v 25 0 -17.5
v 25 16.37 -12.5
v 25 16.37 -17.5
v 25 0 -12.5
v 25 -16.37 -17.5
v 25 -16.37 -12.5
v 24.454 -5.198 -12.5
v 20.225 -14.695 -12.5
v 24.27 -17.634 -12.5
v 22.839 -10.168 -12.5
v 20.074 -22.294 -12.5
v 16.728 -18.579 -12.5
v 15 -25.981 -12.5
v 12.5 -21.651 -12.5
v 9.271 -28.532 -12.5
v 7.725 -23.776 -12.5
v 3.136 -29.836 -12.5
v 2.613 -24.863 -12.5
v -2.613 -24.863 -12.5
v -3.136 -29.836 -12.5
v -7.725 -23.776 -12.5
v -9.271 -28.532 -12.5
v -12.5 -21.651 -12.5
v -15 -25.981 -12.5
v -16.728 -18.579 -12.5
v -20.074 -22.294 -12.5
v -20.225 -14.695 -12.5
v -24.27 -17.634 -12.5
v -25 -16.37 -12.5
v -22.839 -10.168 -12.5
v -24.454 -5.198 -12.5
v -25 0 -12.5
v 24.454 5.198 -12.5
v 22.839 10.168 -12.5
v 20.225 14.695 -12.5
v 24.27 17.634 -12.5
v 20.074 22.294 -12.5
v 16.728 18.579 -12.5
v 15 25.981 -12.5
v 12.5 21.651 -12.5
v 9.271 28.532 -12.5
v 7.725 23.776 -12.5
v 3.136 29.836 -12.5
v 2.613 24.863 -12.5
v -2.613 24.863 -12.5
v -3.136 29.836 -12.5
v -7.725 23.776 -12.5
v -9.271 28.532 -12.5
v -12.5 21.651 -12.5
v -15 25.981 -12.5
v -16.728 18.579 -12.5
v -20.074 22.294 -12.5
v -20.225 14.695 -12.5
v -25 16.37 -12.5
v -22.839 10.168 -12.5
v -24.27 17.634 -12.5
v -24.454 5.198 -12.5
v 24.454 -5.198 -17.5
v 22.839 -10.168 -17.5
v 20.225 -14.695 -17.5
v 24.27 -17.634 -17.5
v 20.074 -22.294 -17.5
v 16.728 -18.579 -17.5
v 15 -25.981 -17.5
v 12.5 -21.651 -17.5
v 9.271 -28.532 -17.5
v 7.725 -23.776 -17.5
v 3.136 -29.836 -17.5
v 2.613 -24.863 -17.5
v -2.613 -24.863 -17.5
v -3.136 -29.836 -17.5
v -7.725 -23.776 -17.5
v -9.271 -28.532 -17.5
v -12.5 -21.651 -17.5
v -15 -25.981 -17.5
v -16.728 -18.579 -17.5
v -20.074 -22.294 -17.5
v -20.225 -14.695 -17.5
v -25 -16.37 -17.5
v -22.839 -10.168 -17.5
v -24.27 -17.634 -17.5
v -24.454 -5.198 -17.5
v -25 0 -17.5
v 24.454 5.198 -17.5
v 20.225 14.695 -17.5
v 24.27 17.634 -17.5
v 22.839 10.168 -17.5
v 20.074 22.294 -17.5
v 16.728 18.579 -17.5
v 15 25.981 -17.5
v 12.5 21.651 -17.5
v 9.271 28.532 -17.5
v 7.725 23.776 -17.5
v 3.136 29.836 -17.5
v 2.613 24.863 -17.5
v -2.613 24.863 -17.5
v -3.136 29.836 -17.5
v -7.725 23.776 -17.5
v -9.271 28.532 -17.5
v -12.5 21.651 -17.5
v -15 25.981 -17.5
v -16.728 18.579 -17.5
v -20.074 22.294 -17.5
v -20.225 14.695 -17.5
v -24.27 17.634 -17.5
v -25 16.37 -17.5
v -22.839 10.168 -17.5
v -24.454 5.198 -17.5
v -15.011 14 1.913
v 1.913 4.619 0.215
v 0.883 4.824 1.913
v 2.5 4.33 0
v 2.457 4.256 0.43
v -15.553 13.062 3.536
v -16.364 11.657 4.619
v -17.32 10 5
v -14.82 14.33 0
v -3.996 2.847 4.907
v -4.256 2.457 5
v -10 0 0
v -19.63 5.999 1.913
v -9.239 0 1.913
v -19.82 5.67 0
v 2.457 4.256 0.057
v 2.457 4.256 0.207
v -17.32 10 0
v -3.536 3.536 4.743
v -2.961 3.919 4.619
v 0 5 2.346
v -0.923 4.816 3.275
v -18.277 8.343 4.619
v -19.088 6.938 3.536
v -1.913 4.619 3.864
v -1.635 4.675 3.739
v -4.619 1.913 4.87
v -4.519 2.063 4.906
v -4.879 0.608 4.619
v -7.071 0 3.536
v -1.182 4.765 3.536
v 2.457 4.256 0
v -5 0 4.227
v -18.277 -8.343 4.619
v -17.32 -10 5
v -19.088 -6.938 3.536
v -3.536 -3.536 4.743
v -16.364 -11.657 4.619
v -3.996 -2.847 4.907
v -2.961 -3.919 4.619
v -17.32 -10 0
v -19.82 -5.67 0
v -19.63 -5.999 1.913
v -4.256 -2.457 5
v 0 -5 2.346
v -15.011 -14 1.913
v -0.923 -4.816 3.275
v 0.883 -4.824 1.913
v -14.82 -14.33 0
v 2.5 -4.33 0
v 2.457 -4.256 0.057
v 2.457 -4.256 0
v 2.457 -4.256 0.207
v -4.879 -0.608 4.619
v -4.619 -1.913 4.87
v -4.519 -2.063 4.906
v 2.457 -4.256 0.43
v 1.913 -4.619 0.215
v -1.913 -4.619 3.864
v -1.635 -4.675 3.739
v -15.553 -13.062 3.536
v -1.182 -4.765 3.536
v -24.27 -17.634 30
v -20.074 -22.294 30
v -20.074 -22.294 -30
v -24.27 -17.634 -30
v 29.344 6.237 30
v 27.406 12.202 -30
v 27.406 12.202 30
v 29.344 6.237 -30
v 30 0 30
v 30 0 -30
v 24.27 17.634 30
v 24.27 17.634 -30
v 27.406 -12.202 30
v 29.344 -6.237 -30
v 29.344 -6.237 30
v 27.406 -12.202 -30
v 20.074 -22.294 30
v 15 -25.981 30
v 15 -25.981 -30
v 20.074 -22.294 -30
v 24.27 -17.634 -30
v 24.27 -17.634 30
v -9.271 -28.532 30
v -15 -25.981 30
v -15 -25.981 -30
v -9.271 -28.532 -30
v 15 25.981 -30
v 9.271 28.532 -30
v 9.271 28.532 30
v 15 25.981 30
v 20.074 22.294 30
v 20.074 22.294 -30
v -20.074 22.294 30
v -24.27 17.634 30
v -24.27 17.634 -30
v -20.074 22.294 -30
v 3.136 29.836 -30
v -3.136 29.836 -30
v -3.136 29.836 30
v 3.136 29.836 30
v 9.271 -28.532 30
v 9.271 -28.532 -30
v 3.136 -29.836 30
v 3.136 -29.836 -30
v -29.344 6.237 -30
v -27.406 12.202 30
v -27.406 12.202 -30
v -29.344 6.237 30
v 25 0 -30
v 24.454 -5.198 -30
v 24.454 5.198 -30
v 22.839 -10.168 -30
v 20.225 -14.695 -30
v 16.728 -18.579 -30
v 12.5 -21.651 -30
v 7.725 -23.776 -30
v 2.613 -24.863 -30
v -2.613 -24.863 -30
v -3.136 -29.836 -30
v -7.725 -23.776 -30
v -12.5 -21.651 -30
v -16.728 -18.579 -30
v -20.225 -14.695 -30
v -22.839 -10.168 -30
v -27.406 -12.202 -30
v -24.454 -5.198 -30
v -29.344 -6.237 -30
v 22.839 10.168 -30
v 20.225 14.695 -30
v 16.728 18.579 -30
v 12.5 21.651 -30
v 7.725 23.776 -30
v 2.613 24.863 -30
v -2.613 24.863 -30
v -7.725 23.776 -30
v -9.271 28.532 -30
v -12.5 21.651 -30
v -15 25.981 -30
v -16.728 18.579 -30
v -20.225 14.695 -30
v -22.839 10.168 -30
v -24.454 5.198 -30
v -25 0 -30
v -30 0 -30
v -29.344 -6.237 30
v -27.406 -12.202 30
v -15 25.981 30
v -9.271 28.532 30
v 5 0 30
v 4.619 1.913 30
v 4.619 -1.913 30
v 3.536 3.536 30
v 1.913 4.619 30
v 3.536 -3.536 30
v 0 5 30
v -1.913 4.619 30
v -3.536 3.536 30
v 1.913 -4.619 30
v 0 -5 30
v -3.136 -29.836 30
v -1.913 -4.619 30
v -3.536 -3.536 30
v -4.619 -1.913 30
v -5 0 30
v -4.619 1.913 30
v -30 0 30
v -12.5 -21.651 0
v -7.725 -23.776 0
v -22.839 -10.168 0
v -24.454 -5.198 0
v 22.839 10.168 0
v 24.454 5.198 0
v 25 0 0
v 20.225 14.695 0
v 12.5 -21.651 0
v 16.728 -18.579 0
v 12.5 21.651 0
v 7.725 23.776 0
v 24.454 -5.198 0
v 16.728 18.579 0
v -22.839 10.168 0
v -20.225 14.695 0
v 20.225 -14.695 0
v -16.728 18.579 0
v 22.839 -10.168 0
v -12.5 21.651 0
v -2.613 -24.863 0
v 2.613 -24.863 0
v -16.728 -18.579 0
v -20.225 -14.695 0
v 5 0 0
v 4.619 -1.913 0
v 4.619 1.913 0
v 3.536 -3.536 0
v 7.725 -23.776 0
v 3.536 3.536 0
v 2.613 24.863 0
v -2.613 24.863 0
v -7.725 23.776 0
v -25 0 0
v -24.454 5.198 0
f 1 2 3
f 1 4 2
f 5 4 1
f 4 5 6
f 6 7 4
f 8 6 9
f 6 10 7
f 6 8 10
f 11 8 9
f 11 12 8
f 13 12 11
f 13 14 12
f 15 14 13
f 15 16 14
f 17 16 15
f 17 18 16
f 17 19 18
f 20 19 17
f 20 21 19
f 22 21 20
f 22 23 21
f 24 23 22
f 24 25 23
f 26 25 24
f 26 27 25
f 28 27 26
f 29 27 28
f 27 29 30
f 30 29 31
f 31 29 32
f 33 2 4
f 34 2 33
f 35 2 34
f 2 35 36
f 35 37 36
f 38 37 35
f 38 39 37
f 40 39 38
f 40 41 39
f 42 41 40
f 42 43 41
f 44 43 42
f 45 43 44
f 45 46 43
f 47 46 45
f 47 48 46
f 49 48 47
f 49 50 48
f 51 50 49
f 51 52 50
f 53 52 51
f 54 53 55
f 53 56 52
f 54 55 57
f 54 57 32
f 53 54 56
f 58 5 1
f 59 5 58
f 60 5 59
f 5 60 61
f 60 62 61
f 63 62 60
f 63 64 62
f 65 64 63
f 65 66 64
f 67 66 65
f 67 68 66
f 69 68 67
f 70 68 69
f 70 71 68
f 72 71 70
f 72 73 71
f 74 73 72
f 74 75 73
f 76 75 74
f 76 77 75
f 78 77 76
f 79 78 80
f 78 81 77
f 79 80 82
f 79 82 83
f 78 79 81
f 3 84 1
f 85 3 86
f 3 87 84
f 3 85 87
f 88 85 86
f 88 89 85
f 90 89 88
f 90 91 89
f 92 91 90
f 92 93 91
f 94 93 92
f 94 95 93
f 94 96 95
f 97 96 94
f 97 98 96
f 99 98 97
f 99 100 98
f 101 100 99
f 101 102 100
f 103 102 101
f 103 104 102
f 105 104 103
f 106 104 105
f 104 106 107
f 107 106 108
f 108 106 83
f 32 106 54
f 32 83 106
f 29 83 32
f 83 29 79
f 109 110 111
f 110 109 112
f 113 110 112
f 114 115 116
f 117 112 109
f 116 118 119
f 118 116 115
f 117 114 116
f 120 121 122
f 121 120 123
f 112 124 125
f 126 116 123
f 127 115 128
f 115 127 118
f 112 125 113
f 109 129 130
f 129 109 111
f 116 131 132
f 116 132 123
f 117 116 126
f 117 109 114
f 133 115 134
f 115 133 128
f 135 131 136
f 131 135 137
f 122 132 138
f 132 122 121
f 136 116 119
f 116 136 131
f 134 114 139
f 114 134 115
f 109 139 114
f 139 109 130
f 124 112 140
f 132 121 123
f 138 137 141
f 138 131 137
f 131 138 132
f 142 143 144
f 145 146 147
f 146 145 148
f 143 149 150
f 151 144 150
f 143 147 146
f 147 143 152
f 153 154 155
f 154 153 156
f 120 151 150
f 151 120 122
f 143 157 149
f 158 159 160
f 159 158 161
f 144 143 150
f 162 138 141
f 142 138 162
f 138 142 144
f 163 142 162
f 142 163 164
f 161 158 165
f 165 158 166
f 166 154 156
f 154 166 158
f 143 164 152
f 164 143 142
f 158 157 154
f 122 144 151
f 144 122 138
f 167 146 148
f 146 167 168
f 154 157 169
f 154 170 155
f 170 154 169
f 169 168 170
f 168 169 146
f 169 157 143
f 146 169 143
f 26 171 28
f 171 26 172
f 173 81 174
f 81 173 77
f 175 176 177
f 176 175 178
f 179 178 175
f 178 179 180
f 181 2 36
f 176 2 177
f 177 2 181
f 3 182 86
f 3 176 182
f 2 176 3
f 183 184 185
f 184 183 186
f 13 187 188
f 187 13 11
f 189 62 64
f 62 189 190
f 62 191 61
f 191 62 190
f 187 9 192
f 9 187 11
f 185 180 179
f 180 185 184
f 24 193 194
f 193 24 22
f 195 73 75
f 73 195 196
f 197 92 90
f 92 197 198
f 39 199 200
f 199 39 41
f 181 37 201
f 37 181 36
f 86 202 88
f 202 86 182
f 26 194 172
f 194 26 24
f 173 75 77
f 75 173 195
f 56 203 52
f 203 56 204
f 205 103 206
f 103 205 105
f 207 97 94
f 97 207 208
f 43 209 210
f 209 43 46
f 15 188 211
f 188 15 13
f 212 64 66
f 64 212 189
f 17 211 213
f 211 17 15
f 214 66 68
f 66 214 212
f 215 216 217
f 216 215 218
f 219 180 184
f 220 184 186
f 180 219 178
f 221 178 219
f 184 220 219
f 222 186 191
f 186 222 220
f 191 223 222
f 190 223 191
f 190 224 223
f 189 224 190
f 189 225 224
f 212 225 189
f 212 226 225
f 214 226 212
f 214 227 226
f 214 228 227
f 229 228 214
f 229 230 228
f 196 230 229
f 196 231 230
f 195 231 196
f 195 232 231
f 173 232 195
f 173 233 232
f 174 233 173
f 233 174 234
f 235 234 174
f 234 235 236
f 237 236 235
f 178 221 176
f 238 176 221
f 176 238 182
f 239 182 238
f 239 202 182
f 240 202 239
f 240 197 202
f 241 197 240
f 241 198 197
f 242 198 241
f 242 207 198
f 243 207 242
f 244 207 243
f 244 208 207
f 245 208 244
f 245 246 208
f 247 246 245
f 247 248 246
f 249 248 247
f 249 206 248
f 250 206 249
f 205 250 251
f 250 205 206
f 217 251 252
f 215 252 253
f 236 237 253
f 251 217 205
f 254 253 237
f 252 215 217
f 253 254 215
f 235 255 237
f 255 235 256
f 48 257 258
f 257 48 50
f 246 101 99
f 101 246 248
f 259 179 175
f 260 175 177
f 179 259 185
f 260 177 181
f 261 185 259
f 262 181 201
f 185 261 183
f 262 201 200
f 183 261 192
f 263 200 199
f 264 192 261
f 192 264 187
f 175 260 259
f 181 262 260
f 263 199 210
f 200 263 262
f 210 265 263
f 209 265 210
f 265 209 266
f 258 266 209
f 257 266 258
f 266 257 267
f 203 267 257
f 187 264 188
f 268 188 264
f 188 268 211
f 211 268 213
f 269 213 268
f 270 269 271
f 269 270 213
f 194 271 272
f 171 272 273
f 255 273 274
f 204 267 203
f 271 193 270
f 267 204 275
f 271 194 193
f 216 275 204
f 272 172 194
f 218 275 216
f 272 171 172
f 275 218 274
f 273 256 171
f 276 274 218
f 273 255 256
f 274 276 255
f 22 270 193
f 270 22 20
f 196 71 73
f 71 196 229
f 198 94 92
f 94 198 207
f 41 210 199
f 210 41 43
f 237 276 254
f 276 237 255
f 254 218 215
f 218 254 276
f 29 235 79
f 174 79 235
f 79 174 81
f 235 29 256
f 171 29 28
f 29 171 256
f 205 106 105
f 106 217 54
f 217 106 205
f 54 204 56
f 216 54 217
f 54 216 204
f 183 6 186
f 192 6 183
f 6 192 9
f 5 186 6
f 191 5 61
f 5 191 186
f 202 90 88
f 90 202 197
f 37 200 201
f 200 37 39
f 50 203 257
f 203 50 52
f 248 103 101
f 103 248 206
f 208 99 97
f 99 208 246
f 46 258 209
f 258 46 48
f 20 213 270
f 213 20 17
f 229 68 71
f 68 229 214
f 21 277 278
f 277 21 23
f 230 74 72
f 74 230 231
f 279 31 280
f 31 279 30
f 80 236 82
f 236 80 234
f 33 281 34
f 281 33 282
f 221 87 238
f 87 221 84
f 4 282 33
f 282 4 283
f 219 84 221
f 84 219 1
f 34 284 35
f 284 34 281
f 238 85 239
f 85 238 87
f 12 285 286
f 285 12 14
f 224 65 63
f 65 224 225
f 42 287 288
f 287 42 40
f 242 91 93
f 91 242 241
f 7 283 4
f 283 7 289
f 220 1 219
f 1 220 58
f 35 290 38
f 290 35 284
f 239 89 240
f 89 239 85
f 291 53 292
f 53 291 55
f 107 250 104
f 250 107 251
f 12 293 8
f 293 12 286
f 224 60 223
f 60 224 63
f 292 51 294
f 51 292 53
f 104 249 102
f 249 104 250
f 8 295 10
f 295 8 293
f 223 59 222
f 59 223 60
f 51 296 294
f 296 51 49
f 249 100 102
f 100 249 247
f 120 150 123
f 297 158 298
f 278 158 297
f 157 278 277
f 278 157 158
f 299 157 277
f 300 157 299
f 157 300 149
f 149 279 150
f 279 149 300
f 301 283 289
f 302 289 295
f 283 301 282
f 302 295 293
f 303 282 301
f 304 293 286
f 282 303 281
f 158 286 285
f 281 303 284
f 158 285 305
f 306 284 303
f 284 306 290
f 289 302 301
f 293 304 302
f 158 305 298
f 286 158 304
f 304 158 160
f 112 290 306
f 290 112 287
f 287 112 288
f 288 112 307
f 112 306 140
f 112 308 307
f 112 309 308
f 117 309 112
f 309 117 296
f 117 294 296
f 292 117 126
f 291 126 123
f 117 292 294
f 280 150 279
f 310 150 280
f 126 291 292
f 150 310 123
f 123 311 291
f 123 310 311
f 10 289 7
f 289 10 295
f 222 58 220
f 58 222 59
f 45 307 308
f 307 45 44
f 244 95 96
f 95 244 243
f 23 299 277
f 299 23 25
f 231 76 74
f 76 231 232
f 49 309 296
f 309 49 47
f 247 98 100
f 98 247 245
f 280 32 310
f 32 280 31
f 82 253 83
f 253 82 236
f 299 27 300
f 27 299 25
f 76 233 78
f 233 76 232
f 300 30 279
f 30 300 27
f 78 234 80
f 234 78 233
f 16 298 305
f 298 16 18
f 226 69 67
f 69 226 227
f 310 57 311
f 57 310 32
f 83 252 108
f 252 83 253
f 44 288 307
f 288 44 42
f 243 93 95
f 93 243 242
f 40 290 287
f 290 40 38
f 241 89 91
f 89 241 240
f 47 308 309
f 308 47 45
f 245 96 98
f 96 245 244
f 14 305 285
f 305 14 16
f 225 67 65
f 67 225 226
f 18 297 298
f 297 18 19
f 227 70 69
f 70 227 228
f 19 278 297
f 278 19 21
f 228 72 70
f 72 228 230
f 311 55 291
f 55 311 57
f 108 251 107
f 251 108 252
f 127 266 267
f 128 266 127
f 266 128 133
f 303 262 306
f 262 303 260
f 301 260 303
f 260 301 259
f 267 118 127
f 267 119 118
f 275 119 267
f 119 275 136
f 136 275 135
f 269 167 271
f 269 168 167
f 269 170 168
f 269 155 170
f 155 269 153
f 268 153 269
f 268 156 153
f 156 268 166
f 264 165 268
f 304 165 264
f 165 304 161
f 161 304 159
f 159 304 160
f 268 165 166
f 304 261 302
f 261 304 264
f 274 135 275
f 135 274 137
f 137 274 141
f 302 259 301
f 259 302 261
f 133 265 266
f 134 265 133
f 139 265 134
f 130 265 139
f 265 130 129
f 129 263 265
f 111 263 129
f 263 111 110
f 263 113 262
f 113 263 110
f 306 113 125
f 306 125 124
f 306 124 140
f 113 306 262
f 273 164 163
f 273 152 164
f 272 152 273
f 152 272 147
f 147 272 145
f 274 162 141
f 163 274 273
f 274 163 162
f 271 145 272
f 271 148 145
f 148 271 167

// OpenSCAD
// Parameters for basic dimensions
module create_coupling() {
    difference() {
        // Main cylinder
        cylinder(h=60, r=30, center=true);
        
        // Hollow cut-out inside
        translate([0, 0, -30])
            cylinder(h=60, r=25, center=true);
        
        // Lateral cuts
        translate([0, 0, -30])
            rotate([90,0,0])
            for(deg=[0, 180])
                rotate([0, 0, deg])
                    translate([0, -15, 0])
                        cube([50, 5, 60], center=true);

        // Central hole
        translate([0, 0, -30])
            cylinder(h=120, r=5, center=true);
        
        // Protruding small cylinders
        for(deg=[60, 120])
            rotate([0, 0, deg])
                translate([0, 20, 0])
                    rotate([90, 0, 0])
                        cylinder(h=20, r=5, center=false);
    }
}

create_coupling();
